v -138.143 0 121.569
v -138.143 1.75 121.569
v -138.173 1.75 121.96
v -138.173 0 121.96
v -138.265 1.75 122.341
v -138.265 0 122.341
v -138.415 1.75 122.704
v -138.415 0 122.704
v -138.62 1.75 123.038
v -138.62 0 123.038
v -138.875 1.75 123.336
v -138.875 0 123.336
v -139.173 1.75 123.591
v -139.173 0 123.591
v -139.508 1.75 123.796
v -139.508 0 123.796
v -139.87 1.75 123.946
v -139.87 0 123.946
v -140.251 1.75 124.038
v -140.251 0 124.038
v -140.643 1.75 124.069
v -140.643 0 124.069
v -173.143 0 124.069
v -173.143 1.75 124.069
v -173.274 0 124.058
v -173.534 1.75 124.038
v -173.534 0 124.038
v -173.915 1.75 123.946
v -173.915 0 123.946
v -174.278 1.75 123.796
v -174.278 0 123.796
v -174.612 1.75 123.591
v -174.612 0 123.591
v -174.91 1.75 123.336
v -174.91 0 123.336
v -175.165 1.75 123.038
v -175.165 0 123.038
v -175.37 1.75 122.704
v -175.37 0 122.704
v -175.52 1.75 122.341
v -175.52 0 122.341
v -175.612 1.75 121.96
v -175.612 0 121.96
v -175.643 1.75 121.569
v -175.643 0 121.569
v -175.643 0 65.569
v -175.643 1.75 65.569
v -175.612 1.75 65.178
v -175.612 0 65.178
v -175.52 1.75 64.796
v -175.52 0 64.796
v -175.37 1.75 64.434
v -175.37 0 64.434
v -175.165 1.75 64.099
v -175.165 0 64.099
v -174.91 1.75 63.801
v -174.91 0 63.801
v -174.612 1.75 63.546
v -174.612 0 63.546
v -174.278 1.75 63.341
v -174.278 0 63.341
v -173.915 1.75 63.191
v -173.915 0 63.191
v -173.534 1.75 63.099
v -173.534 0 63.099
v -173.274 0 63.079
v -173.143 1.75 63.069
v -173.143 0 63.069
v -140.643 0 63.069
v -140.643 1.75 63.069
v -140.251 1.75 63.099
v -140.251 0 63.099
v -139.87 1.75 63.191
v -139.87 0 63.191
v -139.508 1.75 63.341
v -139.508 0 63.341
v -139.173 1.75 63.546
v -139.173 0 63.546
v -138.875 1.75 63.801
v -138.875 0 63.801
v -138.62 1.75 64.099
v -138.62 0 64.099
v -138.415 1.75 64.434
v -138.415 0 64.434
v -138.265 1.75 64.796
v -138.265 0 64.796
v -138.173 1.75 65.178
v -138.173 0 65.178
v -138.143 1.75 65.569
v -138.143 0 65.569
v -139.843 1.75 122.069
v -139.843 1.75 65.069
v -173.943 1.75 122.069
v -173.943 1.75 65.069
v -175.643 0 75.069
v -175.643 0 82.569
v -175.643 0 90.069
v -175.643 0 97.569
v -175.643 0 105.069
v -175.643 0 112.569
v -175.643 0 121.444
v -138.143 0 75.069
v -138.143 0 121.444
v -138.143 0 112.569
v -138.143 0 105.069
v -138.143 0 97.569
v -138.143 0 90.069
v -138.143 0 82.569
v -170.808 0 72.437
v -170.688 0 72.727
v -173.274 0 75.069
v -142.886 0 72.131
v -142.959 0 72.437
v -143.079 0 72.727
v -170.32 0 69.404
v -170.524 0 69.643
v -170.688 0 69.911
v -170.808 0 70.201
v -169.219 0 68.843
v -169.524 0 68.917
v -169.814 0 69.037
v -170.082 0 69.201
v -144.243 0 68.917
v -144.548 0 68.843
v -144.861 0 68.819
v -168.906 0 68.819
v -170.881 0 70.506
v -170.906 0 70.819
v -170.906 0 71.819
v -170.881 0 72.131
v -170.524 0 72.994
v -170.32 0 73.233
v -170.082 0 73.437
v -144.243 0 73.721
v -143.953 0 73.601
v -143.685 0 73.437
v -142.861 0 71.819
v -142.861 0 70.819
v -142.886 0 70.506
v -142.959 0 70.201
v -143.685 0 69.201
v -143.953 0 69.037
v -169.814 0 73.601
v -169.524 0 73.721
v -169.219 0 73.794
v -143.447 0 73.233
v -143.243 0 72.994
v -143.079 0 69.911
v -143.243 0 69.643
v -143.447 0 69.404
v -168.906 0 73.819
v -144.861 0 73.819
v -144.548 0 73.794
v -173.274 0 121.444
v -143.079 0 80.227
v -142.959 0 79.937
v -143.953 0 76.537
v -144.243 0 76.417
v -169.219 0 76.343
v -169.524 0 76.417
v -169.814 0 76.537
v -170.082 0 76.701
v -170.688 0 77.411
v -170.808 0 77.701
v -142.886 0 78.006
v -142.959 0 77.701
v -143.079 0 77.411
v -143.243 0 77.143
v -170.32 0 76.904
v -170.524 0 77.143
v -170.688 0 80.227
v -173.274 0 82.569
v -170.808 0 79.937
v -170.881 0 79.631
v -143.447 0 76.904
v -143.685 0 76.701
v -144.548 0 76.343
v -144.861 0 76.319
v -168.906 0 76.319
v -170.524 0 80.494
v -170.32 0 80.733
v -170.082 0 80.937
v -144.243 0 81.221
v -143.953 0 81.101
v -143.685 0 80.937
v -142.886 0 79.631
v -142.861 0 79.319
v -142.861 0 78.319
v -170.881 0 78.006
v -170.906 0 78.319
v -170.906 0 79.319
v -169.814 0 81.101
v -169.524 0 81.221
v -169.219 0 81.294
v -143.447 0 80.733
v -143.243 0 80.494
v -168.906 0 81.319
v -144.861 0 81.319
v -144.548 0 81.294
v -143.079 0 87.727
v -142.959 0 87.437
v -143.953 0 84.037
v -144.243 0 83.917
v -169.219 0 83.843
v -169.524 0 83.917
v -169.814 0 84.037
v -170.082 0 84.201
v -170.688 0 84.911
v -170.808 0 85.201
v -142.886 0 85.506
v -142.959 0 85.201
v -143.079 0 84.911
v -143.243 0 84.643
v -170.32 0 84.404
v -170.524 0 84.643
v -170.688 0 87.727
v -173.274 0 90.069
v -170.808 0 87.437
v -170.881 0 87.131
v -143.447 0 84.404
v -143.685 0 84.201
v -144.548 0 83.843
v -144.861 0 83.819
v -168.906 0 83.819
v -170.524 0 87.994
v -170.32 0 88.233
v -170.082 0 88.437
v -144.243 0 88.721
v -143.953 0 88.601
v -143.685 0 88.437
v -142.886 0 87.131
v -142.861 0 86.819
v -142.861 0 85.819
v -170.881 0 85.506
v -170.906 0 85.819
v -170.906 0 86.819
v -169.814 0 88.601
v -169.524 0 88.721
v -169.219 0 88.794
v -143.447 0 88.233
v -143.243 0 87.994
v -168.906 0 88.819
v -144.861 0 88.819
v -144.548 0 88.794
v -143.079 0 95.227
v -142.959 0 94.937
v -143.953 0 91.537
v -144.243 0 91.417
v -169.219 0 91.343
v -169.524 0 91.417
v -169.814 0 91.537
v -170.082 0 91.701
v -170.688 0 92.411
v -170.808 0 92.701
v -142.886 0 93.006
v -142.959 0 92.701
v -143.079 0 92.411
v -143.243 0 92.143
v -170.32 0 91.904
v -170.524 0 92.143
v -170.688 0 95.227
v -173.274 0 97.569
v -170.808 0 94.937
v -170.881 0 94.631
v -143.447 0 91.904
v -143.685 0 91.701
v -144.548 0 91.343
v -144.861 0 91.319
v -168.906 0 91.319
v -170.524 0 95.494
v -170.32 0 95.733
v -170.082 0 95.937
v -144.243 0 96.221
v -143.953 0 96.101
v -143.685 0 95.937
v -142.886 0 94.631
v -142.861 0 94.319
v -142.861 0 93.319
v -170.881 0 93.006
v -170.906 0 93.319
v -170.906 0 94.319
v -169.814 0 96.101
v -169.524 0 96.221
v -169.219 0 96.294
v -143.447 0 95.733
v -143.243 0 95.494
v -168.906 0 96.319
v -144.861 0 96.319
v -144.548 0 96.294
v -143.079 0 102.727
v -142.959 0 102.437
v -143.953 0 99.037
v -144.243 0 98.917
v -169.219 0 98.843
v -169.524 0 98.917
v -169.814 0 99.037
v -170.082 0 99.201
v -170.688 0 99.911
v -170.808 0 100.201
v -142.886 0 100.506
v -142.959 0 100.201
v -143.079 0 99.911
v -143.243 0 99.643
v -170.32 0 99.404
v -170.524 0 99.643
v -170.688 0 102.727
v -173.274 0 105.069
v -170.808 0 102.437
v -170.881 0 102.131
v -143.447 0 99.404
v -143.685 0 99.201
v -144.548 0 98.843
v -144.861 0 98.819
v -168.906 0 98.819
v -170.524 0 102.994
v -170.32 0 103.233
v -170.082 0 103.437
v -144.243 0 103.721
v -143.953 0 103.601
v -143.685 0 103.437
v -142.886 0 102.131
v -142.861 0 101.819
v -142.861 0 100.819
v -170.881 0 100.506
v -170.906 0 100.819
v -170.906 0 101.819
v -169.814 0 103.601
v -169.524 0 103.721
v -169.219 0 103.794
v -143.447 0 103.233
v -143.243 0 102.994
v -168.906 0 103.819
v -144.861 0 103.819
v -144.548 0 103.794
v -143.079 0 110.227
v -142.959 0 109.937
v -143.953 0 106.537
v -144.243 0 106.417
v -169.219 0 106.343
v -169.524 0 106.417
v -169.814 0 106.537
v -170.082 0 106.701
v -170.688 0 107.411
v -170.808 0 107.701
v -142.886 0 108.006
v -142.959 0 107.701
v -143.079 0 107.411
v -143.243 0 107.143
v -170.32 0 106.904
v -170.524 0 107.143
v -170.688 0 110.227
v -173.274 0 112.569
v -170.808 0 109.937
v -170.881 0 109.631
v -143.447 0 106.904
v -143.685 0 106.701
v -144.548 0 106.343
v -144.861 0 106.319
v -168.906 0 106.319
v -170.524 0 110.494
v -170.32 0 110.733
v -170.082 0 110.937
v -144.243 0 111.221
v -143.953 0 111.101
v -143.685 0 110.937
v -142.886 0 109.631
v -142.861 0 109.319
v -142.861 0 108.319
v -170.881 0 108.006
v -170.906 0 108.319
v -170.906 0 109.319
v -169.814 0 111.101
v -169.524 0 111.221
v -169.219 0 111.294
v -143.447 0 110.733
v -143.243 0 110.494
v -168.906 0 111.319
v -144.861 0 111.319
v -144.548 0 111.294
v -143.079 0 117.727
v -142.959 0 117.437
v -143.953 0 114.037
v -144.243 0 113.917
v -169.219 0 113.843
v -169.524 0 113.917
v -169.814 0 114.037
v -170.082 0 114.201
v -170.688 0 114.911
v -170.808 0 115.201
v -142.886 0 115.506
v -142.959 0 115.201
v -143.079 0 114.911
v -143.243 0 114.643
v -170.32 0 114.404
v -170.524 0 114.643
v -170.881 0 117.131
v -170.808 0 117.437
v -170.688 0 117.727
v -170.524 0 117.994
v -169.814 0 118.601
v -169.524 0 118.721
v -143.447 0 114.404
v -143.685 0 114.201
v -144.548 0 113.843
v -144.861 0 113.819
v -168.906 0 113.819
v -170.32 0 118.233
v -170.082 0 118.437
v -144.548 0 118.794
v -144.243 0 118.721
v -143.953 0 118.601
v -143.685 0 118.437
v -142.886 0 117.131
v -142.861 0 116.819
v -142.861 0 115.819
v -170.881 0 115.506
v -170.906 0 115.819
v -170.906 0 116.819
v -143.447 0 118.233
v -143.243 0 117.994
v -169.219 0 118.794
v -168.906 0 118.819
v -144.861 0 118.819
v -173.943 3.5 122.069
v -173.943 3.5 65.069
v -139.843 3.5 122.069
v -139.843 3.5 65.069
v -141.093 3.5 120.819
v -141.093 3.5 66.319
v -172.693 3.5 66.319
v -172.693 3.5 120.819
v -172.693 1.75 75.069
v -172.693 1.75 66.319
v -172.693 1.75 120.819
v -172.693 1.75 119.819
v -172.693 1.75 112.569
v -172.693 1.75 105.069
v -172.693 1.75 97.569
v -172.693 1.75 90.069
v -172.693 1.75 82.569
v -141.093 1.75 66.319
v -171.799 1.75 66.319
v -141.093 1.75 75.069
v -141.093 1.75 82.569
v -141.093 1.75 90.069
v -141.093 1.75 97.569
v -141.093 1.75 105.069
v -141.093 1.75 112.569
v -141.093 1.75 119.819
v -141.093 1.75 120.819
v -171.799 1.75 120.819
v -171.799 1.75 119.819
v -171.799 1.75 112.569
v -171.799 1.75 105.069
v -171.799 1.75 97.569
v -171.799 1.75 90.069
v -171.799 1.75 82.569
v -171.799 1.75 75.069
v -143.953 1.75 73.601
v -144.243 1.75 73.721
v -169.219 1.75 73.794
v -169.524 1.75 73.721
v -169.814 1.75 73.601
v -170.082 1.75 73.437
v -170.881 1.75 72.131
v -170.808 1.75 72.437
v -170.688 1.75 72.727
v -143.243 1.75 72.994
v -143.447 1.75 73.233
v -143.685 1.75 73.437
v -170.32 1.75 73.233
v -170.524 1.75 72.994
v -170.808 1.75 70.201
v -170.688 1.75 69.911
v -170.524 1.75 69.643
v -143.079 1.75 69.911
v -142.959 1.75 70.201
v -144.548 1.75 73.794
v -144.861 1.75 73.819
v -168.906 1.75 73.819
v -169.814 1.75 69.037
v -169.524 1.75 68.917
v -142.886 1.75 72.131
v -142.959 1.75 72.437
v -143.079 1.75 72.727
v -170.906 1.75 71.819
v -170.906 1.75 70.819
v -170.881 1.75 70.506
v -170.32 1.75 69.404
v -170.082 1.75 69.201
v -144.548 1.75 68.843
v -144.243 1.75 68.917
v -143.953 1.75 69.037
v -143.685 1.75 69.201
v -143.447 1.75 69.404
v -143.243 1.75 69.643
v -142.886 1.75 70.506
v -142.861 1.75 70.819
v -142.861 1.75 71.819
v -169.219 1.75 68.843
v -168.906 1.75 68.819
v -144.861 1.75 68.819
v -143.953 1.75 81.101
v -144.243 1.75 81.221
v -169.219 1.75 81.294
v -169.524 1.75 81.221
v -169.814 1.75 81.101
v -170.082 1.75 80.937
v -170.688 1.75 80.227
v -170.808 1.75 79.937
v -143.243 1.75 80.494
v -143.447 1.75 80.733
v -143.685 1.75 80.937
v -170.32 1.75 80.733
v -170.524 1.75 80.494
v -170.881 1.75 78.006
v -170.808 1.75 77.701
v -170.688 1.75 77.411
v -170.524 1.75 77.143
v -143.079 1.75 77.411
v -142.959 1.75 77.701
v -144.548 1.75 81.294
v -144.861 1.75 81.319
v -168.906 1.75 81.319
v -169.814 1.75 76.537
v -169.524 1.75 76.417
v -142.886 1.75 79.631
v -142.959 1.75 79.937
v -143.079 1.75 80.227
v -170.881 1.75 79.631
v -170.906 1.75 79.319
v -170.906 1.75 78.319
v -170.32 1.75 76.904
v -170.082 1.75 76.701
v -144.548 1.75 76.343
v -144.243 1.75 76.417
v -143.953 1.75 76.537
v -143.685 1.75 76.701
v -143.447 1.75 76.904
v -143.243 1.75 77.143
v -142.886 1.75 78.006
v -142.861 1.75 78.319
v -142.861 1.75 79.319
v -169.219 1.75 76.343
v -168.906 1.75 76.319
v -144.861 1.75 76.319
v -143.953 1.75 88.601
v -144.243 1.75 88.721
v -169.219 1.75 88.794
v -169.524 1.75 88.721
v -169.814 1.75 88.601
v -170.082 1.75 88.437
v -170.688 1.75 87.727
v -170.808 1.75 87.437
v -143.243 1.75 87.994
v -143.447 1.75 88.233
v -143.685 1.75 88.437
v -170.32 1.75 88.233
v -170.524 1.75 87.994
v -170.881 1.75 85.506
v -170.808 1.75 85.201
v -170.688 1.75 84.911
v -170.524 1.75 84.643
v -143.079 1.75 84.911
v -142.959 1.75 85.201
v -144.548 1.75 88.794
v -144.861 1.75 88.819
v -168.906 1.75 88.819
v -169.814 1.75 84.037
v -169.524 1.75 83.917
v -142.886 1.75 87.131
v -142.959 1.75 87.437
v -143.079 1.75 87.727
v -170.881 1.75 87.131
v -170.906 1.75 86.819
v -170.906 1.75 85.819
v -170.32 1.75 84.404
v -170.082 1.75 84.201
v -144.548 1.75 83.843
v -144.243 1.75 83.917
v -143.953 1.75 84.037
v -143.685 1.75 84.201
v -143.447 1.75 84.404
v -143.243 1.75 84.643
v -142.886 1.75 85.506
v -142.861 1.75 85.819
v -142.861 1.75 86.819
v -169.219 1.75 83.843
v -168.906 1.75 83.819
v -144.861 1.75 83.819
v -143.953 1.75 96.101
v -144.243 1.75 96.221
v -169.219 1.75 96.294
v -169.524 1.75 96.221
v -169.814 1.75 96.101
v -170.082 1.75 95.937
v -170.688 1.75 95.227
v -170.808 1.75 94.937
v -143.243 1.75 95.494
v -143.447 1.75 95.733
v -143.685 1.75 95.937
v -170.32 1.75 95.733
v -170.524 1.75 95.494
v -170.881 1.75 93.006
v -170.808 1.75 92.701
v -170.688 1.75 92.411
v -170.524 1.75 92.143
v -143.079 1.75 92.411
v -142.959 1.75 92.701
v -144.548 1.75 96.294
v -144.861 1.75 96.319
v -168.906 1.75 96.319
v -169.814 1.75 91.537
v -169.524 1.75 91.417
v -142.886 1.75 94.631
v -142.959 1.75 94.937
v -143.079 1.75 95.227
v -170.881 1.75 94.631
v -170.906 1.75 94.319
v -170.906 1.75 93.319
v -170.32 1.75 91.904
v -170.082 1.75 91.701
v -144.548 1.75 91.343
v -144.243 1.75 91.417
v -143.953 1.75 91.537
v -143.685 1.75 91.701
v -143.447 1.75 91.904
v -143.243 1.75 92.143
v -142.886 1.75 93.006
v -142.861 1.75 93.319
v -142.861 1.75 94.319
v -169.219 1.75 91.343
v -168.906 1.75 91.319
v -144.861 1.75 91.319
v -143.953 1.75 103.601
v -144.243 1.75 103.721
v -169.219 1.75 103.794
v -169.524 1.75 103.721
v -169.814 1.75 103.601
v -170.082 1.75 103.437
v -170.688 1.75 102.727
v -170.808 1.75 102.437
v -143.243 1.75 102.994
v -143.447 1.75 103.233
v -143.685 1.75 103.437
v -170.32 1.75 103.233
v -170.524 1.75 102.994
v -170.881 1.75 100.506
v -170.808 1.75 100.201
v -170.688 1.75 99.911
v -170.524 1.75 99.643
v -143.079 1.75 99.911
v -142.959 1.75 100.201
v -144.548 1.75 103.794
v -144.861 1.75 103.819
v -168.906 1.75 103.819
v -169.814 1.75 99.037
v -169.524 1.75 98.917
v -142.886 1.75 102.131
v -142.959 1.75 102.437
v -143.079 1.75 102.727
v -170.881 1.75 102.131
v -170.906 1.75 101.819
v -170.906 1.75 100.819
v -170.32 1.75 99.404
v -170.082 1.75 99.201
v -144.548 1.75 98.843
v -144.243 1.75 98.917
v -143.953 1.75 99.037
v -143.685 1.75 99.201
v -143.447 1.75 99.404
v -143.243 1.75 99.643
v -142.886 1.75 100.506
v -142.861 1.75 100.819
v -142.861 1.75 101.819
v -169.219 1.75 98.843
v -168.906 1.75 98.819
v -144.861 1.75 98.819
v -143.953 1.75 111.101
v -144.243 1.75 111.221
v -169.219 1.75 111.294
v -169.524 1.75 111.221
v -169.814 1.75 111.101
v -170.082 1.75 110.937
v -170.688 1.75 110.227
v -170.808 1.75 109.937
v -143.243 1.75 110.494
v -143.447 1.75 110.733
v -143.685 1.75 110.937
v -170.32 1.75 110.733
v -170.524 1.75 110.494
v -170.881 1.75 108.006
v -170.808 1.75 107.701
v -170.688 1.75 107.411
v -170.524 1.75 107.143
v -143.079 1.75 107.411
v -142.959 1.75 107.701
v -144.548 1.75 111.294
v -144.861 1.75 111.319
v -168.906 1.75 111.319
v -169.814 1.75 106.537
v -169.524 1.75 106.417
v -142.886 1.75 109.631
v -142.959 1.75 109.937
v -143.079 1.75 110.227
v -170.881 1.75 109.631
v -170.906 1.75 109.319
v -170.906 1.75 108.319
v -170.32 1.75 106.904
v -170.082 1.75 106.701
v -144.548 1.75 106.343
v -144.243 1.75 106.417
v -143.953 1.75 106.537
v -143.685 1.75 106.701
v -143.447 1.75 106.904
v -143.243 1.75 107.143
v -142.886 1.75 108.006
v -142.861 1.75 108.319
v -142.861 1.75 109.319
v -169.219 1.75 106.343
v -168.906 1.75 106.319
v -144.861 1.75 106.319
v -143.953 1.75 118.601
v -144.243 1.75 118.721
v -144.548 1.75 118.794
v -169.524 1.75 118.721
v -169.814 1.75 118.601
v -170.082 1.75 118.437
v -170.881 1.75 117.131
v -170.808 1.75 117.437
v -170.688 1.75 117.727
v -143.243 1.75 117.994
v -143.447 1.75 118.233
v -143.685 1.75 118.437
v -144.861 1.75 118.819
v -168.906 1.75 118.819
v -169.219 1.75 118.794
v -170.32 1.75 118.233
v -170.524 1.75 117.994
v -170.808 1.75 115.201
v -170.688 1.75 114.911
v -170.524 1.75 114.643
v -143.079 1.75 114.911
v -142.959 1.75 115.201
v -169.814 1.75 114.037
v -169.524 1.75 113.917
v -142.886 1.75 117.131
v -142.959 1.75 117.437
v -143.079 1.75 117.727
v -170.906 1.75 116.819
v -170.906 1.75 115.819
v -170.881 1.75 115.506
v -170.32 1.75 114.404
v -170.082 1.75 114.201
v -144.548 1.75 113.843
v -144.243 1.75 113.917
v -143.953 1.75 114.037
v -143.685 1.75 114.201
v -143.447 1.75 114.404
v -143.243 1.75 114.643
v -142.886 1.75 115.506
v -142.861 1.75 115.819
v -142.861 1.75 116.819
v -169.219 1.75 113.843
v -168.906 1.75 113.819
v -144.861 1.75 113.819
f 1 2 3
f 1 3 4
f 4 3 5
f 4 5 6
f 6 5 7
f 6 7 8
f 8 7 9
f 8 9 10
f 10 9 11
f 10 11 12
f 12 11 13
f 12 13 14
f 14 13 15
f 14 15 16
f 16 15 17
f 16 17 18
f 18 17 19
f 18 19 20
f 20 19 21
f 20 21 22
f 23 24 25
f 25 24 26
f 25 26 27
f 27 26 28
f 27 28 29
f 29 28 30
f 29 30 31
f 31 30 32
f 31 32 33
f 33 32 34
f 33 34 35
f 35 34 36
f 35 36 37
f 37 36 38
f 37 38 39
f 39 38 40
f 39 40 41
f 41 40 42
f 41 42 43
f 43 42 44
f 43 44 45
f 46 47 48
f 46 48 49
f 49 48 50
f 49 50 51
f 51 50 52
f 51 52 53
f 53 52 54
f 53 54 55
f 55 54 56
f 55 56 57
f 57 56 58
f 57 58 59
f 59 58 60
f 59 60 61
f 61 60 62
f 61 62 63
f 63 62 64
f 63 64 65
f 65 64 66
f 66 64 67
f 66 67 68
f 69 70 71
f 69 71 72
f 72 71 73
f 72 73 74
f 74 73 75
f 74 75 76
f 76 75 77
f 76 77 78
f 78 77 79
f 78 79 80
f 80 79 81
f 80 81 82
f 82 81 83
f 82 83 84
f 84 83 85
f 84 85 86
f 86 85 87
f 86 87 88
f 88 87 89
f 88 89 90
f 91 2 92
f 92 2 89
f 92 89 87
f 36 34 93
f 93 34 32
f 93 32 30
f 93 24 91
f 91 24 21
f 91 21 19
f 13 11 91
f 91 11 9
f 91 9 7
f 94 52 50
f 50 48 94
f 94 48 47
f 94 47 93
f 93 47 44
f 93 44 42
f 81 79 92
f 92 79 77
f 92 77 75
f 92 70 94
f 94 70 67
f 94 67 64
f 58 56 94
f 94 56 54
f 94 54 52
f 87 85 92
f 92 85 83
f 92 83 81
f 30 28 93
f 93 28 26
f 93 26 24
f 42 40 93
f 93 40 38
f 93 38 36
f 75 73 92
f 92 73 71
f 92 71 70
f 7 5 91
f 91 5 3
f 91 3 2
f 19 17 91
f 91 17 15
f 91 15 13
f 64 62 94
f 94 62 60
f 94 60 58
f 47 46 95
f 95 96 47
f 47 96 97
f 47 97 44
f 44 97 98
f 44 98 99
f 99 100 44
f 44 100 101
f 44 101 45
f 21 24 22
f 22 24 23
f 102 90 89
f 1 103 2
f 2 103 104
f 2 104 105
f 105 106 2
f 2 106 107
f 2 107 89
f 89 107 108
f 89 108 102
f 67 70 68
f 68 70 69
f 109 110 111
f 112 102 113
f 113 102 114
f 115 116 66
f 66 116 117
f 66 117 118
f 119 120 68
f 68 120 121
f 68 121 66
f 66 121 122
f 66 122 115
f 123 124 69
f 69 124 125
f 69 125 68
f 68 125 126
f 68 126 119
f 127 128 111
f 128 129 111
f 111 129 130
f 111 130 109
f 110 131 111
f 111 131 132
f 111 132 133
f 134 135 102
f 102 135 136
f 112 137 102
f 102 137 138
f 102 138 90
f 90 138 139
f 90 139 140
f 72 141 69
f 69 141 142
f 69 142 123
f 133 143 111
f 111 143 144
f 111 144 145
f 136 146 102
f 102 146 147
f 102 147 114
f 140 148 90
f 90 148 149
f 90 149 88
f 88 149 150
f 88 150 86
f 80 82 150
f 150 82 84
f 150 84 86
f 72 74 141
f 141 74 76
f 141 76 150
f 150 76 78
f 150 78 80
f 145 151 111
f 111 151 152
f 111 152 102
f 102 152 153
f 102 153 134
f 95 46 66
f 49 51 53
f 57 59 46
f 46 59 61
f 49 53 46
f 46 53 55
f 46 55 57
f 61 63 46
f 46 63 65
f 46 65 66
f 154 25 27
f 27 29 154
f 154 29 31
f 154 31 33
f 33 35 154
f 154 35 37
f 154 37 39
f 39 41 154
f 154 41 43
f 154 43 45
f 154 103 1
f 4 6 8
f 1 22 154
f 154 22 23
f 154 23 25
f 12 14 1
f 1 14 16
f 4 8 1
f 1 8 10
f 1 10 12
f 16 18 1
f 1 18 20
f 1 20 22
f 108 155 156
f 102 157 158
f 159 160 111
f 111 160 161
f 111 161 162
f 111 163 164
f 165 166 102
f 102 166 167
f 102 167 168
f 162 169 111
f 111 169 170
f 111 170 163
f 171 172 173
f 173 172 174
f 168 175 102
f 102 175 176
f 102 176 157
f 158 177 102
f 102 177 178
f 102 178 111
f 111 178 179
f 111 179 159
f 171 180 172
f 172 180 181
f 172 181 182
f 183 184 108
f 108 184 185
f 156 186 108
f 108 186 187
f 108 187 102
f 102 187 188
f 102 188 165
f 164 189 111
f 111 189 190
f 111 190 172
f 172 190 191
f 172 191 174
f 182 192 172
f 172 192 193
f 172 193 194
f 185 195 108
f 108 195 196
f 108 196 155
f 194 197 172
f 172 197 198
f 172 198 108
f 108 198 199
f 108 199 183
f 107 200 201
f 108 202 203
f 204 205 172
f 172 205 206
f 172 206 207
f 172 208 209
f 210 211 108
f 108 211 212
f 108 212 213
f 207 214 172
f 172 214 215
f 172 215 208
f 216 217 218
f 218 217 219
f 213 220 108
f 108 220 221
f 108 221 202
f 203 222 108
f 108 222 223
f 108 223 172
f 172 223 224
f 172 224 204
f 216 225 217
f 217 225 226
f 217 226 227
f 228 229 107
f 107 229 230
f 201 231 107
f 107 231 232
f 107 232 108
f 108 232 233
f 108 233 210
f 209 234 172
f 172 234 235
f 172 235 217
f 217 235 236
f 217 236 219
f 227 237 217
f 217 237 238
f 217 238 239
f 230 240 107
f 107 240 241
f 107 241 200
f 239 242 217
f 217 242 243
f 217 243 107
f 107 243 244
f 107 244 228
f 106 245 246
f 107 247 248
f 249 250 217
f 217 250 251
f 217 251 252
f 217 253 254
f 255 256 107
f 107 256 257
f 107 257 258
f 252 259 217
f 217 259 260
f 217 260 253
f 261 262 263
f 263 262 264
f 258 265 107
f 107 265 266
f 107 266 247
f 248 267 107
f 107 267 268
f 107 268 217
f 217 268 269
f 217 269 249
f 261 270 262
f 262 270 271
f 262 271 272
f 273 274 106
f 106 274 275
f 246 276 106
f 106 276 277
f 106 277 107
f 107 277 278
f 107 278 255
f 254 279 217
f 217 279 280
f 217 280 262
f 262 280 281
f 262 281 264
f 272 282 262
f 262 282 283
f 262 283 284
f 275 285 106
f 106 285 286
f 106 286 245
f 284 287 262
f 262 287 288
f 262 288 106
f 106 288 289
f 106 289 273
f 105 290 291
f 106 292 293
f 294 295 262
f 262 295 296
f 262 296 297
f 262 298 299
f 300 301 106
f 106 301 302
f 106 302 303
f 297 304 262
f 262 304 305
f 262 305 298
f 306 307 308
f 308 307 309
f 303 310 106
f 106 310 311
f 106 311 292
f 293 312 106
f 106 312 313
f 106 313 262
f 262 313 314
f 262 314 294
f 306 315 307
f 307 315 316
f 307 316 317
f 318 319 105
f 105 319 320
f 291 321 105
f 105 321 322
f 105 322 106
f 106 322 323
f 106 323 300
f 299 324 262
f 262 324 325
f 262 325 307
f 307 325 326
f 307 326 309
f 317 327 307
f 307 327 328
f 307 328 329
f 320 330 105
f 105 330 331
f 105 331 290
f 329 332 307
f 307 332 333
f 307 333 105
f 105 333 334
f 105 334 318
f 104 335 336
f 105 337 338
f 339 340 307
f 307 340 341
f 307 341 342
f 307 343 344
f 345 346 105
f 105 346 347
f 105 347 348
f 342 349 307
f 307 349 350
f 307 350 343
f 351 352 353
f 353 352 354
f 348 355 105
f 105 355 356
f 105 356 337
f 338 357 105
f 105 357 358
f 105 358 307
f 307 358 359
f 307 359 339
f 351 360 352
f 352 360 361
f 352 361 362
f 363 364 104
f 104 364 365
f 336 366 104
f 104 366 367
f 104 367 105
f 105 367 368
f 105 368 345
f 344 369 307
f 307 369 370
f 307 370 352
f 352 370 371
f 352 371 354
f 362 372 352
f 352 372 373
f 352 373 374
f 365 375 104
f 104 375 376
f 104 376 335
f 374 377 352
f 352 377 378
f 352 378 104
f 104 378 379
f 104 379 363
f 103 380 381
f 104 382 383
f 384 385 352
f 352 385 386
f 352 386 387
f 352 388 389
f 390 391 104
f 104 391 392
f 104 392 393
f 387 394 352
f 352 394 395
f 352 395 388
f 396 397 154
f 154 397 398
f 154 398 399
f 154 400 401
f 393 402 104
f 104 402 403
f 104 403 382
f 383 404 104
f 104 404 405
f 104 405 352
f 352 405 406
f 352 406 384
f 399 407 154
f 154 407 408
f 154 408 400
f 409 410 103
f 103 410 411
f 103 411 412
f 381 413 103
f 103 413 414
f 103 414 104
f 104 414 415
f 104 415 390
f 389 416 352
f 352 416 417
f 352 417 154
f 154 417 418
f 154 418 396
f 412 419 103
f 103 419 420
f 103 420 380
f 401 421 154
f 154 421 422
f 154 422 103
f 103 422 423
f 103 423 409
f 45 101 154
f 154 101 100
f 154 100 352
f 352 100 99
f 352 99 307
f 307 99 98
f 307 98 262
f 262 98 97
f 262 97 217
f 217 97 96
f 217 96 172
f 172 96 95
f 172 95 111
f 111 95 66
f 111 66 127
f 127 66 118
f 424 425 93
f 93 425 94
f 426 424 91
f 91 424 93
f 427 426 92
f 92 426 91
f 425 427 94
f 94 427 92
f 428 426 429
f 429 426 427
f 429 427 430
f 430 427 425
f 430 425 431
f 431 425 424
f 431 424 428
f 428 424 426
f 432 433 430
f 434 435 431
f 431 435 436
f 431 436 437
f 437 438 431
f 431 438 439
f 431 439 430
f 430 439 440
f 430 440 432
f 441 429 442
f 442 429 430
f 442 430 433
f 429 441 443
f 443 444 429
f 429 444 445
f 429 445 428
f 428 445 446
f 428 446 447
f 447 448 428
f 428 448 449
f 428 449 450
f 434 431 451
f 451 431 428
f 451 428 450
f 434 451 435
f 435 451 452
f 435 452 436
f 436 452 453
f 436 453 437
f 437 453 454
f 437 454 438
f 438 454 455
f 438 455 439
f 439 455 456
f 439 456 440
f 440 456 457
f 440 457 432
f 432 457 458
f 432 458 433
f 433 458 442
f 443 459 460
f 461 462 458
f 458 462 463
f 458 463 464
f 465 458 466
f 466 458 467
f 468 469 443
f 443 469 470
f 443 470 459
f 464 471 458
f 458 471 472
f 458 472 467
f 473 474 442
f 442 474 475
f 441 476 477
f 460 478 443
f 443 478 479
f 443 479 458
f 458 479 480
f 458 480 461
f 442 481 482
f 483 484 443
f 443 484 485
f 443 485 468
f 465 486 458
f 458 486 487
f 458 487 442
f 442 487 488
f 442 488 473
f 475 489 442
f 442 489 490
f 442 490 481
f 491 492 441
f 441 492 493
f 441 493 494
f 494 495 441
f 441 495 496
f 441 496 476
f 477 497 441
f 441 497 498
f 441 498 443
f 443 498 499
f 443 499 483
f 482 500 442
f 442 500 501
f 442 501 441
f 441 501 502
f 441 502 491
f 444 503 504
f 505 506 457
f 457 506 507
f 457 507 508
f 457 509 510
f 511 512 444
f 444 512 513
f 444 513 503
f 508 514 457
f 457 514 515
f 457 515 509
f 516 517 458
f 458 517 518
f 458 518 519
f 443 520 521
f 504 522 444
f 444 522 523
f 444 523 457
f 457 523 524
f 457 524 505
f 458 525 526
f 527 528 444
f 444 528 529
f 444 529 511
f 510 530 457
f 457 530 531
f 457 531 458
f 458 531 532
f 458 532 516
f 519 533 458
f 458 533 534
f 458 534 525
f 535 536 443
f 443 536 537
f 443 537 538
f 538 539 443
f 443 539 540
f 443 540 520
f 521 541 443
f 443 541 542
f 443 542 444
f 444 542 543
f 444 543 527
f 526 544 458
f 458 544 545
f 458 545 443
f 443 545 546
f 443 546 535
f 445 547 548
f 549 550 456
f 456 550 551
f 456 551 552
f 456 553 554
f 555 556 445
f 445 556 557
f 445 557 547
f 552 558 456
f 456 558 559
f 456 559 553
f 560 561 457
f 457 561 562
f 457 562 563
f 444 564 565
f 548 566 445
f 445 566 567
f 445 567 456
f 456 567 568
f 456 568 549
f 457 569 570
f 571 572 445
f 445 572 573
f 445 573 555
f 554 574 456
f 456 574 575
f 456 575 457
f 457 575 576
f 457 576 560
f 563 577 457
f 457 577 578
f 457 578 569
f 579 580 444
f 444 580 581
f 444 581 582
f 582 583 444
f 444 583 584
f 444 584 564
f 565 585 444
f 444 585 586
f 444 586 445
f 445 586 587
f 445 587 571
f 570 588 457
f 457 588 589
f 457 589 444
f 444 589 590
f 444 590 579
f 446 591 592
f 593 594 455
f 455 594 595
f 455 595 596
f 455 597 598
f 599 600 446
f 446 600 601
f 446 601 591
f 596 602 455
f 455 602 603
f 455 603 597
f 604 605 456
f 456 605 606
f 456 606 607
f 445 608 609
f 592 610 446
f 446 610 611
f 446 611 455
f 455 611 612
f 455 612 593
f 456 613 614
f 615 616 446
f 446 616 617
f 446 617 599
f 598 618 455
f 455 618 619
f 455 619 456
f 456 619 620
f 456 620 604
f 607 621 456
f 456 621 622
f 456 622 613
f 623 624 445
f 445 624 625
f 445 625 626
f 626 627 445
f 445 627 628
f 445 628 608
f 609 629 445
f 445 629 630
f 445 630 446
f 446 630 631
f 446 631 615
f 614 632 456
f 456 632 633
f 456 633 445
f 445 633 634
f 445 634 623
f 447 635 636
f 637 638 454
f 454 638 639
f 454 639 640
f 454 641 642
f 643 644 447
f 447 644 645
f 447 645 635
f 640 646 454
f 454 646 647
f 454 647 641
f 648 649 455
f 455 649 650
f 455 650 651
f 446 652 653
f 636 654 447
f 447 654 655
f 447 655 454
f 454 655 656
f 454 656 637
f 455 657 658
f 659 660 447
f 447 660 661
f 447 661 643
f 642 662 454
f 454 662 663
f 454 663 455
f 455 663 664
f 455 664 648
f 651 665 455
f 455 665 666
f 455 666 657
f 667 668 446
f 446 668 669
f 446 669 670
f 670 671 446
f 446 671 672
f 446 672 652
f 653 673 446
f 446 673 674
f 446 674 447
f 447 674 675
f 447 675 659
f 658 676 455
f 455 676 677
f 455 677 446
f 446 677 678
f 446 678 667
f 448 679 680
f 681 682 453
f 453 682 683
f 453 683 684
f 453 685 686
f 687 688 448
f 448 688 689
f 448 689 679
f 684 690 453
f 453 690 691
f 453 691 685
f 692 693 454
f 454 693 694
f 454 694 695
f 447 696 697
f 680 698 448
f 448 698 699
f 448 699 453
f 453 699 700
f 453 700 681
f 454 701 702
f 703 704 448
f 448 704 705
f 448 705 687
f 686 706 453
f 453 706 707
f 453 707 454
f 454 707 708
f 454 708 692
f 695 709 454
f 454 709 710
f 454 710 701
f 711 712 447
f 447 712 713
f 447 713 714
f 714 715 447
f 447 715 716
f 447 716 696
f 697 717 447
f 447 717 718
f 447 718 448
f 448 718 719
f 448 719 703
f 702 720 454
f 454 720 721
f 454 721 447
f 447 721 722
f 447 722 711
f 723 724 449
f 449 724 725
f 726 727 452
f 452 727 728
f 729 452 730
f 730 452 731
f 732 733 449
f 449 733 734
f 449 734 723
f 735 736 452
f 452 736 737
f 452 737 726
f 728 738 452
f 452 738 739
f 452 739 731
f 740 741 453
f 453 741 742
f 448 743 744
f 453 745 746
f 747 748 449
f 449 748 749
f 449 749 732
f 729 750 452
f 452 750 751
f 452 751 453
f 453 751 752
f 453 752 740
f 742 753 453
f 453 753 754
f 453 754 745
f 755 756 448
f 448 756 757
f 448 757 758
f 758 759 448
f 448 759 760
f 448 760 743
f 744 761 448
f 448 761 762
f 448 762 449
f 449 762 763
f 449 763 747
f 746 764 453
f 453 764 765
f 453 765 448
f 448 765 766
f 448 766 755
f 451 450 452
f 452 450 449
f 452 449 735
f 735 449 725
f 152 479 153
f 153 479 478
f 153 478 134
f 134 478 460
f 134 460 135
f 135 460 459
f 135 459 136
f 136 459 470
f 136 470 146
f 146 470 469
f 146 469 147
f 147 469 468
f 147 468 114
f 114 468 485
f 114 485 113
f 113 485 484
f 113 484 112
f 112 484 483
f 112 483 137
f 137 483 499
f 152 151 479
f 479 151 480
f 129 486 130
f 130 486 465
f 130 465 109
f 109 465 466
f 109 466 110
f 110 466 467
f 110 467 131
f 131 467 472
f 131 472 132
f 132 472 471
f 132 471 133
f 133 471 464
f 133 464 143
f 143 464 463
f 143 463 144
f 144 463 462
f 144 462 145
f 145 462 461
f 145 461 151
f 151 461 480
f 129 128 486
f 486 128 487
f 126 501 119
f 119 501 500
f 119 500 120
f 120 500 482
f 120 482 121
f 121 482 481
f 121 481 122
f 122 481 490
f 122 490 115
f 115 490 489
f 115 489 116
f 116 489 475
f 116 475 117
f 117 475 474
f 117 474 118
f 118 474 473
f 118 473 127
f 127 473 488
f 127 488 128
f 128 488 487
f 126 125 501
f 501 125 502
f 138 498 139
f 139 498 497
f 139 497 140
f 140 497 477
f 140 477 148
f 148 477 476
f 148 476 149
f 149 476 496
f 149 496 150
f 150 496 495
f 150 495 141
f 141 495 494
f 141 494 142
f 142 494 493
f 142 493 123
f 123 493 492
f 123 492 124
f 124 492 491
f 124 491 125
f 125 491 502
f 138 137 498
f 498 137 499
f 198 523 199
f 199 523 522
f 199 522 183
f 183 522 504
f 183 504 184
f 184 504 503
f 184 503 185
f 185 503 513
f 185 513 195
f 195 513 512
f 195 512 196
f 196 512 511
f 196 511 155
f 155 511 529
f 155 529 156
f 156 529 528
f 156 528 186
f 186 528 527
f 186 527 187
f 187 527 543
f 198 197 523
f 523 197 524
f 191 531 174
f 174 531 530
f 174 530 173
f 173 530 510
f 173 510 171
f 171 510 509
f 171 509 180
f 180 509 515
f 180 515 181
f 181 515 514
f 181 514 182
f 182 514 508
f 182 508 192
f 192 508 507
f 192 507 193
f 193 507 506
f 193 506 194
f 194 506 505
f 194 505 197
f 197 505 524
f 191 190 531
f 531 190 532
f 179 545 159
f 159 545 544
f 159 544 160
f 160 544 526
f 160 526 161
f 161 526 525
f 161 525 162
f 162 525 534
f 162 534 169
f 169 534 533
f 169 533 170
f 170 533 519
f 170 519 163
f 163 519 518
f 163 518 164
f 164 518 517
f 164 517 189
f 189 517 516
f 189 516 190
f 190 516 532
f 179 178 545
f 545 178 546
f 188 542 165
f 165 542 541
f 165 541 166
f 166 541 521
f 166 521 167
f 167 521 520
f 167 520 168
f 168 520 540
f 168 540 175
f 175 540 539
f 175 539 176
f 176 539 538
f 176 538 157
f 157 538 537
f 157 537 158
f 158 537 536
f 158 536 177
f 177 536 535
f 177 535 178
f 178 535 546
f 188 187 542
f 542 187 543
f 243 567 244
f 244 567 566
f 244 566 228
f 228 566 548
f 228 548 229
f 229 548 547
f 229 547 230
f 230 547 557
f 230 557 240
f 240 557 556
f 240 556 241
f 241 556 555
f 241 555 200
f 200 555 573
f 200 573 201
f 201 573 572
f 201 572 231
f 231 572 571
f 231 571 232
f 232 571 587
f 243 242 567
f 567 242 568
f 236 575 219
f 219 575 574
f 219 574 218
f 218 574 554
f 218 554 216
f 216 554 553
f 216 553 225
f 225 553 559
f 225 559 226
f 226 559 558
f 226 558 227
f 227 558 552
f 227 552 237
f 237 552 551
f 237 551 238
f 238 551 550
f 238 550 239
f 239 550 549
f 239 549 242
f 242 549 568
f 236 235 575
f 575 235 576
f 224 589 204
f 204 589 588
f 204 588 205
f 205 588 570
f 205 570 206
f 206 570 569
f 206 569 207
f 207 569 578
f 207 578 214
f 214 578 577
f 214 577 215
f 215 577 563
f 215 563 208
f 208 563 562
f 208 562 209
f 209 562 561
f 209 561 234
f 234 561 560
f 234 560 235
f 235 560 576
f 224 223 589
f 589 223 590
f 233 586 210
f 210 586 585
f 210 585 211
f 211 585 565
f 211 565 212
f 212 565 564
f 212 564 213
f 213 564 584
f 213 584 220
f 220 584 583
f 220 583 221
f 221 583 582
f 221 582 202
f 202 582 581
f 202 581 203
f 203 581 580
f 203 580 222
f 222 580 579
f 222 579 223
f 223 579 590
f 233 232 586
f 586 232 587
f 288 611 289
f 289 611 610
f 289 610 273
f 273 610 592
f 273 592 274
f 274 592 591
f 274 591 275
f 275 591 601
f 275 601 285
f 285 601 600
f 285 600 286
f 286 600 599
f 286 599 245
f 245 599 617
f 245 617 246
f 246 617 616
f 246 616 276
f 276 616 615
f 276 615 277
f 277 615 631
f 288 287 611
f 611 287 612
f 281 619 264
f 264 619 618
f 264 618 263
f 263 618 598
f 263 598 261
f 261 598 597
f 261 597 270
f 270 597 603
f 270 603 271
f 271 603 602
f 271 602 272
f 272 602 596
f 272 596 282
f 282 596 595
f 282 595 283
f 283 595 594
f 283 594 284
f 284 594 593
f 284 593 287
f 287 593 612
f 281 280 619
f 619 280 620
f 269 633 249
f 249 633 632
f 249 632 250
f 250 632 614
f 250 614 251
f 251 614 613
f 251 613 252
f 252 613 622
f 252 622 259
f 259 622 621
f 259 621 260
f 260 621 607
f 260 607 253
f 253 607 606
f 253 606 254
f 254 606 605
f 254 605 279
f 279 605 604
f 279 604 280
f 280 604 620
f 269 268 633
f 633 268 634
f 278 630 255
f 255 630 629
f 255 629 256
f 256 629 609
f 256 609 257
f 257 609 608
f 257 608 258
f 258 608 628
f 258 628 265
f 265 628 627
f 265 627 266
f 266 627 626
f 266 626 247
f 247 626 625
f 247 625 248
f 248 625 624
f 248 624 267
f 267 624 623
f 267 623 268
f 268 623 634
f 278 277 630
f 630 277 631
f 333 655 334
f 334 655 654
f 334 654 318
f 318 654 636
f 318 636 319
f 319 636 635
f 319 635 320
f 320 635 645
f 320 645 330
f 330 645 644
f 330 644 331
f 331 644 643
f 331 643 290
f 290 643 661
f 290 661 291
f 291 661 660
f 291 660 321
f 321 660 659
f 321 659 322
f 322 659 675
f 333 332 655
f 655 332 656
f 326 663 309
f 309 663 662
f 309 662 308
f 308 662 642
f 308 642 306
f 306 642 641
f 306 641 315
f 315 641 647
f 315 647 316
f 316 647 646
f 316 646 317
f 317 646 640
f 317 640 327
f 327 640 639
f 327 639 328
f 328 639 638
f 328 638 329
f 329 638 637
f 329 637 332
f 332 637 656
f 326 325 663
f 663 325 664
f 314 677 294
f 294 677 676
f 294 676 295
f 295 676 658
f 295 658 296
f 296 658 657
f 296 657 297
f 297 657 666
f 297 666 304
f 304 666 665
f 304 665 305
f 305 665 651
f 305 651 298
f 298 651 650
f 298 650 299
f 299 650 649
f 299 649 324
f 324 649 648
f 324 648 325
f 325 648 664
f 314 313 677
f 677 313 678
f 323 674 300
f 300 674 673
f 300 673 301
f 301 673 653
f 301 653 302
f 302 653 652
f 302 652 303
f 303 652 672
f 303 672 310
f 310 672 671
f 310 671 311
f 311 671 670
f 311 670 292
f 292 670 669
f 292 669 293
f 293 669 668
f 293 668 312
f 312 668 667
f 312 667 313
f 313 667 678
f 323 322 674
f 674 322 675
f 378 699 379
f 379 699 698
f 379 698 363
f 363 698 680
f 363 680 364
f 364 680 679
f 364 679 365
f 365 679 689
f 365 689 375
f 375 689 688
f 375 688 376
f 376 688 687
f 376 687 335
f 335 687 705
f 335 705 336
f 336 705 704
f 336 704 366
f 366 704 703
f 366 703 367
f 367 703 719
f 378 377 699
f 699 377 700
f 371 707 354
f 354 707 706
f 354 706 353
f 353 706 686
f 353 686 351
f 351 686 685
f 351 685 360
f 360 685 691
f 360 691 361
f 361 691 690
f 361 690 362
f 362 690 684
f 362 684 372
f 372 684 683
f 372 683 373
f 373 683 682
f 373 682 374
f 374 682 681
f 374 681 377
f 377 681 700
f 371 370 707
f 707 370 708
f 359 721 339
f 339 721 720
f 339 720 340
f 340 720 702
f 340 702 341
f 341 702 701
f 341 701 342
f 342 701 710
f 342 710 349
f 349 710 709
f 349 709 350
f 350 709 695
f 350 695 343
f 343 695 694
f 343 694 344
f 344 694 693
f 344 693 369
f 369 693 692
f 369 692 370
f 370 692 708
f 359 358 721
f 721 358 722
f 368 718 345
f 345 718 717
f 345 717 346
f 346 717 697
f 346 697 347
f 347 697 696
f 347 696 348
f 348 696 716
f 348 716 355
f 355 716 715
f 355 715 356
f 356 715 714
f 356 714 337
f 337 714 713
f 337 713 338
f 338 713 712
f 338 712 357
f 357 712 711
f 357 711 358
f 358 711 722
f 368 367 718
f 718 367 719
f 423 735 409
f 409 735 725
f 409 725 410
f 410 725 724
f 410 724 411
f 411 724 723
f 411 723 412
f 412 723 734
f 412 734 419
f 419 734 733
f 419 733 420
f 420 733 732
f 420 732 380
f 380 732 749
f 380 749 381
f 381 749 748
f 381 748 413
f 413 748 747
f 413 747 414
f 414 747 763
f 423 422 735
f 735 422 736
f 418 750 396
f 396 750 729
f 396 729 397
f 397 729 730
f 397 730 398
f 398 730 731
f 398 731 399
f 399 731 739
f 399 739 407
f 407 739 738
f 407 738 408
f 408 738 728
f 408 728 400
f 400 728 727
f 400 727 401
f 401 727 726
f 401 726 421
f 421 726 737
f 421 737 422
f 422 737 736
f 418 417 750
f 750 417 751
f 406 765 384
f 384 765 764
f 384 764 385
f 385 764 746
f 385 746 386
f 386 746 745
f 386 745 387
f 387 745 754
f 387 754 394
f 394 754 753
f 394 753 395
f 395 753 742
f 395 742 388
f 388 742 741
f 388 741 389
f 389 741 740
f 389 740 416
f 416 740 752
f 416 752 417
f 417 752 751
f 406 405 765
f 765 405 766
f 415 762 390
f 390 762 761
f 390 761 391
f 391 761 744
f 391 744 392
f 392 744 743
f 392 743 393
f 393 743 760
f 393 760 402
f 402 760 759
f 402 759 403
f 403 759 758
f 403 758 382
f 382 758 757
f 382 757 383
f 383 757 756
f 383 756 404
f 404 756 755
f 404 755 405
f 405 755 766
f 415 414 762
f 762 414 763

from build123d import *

# Parameters (mm, degrees)
SKETCH1_W           = 37.5
SKETCH1_H           = 61
BOSS_EXTRUDE1_DEPTH = 1.75
SKETCH2_W           = 34.1
SKETCH2_H           = 57
BOSS_EXTRUDE2_DEPTH = 1.75
SKETCH3_W           = 31.6
SKETCH3_H           = 54.5
CUT_EXTRUDE1_DEPTH  = 1.75
CUT_EXTRUDE3_DEPTH  = 1.75
FILLET1_R           = 2.5
FILLET2_R           = 2.5
FILLET3_R           = 2.5
FILLET4_R           = 2.5


with BuildPart() as part:
    # Sketch1 → Boss-Extrude1 (new body)
    with BuildSketch(Plane(origin=(0, 0, 0), x_dir=(1, 0, 0), z_dir=(0, 1, 0))):
        with Locations((-156.892564619, -93.568616843)):
            Rectangle(SKETCH1_W, SKETCH1_H)
    extrude(amount=BOSS_EXTRUDE1_DEPTH)

    # Sketch2 → Boss-Extrude2 (add)
    with BuildSketch(Plane(origin=(0, 1.75, 0), x_dir=(1, 0, 0), z_dir=(0, 1, 0))):
        with Locations((-156.892564619, -93.568616843)):
            Rectangle(SKETCH2_W, SKETCH2_H)
    extrude(amount=BOSS_EXTRUDE2_DEPTH)

    # Sketch3 → Cut-Extrude1 (cut)
    with BuildSketch(Plane(origin=(0, 3.5, 0), x_dir=(1, 0, 0), z_dir=(0, 1, 0))):
        with Locations((-156.892564619, -93.568616843)):
            Rectangle(SKETCH3_W, SKETCH3_H)
    extrude(amount=-CUT_EXTRUDE1_DEPTH, mode=Mode.SUBTRACT)

    # Sketch4 → Cut-Extrude3 (cut)
    with BuildSketch(Plane(origin=(0, 1.75, 0), x_dir=(1, 0, 0), z_dir=(0, 1, 0))):
        with BuildLine():
            Line((-168.906040513, -118.818616843), (-144.860961832, -118.818616843))
            ThreePointArc((-144.860961832, -118.818616843), (-143.446748269, -118.232830406), (-142.860961832, -116.818616843))
            Line((-142.860961832, -116.818616843), (-142.860961832, -115.818616843))
            ThreePointArc((-142.860961832, -115.818616843), (-143.446748269, -114.404403281), (-144.860961832, -113.818616843))
            Line((-144.860961832, -113.818616843), (-168.906040513, -113.818616843))
            ThreePointArc((-168.906040513, -113.818616843), (-170.320254075, -114.404403281), (-170.906040513, -115.818616843))
            Line((-170.906040513, -115.818616843), (-170.906040513, -116.818616843))
            ThreePointArc((-170.906040513, -116.818616843), (-170.320254075, -118.232830406), (-168.906040513, -118.818616843))
        make_face()
        with BuildLine():
            Line((-168.906040513, -103.818616843), (-144.860961832, -103.818616843))
            ThreePointArc((-144.860961832, -103.818616843), (-143.446748269, -103.232830406), (-142.860961832, -101.818616843))
            Line((-142.860961832, -101.818616843), (-142.860961832, -100.818616843))
            ThreePointArc((-142.860961832, -100.818616843), (-143.446748269, -99.404403281), (-144.860961832, -98.818616843))
            Line((-144.860961832, -98.818616843), (-168.906040513, -98.818616843))
            ThreePointArc((-168.906040513, -98.818616843), (-170.320254075, -99.404403281), (-170.906040513, -100.818616843))
            Line((-170.906040513, -100.818616843), (-170.906040513, -101.818616843))
            ThreePointArc((-170.906040513, -101.818616843), (-170.320254075, -103.232830406), (-168.906040513, -103.818616843))
        make_face()
        with BuildLine():
            Line((-168.906040513, -96.318616843), (-144.860961832, -96.318616843))
            ThreePointArc((-144.860961832, -96.318616843), (-143.446748269, -95.732830406), (-142.860961832, -94.318616843))
            Line((-142.860961832, -94.318616843), (-142.860961832, -93.318616843))
            ThreePointArc((-142.860961832, -93.318616843), (-143.446748269, -91.904403281), (-144.860961832, -91.318616843))
            Line((-144.860961832, -91.318616843), (-168.906040513, -91.318616843))
            ThreePointArc((-168.906040513, -91.318616843), (-170.320254075, -91.904403281), (-170.906040513, -93.318616843))
            Line((-170.906040513, -93.318616843), (-170.906040513, -94.318616843))
            ThreePointArc((-170.906040513, -94.318616843), (-170.320254075, -95.732830406), (-168.906040513, -96.318616843))
        make_face()
        with BuildLine():
            Line((-168.906040513, -81.318616843), (-144.860961832, -81.318616843))
            ThreePointArc((-144.860961832, -81.318616843), (-143.446748269, -80.732830406), (-142.860961832, -79.318616843))
            Line((-142.860961832, -79.318616843), (-142.860961832, -78.318616843))
            ThreePointArc((-142.860961832, -78.318616843), (-143.446748269, -76.904403281), (-144.860961832, -76.318616843))
            Line((-144.860961832, -76.318616843), (-168.906040513, -76.318616843))
            ThreePointArc((-168.906040513, -76.318616843), (-170.320254075, -76.904403281), (-170.906040513, -78.318616843))
            Line((-170.906040513, -78.318616843), (-170.906040513, -79.318616843))
            ThreePointArc((-170.906040513, -79.318616843), (-170.320254075, -80.732830406), (-168.906040513, -81.318616843))
        make_face()
        with BuildLine():
            Line((-168.906040513, -111.318616843), (-144.860961832, -111.318616843))
            ThreePointArc((-144.860961832, -111.318616843), (-143.446748269, -110.732830406), (-142.860961832, -109.318616843))
            Line((-142.860961832, -109.318616843), (-142.860961832, -108.318616843))
            ThreePointArc((-142.860961832, -108.318616843), (-143.446748269, -106.904403281), (-144.860961832, -106.318616843))
            Line((-144.860961832, -106.318616843), (-168.906040513, -106.318616843))
            ThreePointArc((-168.906040513, -106.318616843), (-170.320254075, -106.904403281), (-170.906040513, -108.318616843))
            Line((-170.906040513, -108.318616843), (-170.906040513, -109.318616843))
            ThreePointArc((-170.906040513, -109.318616843), (-170.320254075, -110.732830406), (-168.906040513, -111.318616843))
        make_face()
        with BuildLine():
            Line((-168.906040513, -88.818616843), (-144.860961832, -88.818616843))
            ThreePointArc((-144.860961832, -88.818616843), (-143.446748269, -88.232830406), (-142.860961832, -86.818616843))
            Line((-142.860961832, -86.818616843), (-142.860961832, -85.818616843))
            ThreePointArc((-142.860961832, -85.818616843), (-143.446748269, -84.404403281), (-144.860961832, -83.818616843))
            Line((-144.860961832, -83.818616843), (-168.906040513, -83.818616843))
            ThreePointArc((-168.906040513, -83.818616843), (-170.320254075, -84.404403281), (-170.906040513, -85.818616843))
            Line((-170.906040513, -85.818616843), (-170.906040513, -86.818616843))
            ThreePointArc((-170.906040513, -86.818616843), (-170.320254075, -88.232830406), (-168.906040513, -88.818616843))
        make_face()
        with BuildLine():
            Line((-168.906040513, -73.818616843), (-144.860961832, -73.818616843))
            ThreePointArc((-144.860961832, -73.818616843), (-143.446748269, -73.232830406), (-142.860961832, -71.818616843))
            Line((-142.860961832, -71.818616843), (-142.860961832, -70.818616843))
            ThreePointArc((-142.860961832, -70.818616843), (-143.446748269, -69.404403281), (-144.860961832, -68.818616843))
            Line((-144.860961832, -68.818616843), (-168.906040513, -68.818616843))
            ThreePointArc((-168.906040513, -68.818616843), (-170.320254075, -69.404403281), (-170.906040513, -70.818616843))
            Line((-170.906040513, -70.818616843), (-170.906040513, -71.818616843))
            ThreePointArc((-170.906040513, -71.818616843), (-170.320254075, -73.232830406), (-168.906040513, -73.818616843))
        make_face()
    extrude(amount=-CUT_EXTRUDE3_DEPTH, mode=Mode.SUBTRACT)

    # Fillet1
    fillet1_edges = [part.edges().sort_by_distance(p)[0] for p in [
        (-138.142564619, 0.875, 63.068616843),
    ]]
    fillet(fillet1_edges, radius=FILLET1_R)

    # Fillet2
    fillet2_edges = [part.edges().sort_by_distance(p)[0] for p in [
        (-175.642564619, 0.875, 63.068616843),
    ]]
    fillet(fillet2_edges, radius=FILLET2_R)

    # Fillet3
    fillet3_edges = [part.edges().sort_by_distance(p)[0] for p in [
        (-175.642564619, 0.875, 124.068616843),
    ]]
    fillet(fillet3_edges, radius=FILLET3_R)

    # Fillet4
    fillet4_edges = [part.edges().sort_by_distance(p)[0] for p in [
        (-138.142564619, 0.875, 124.068616843),
    ]]
    fillet(fillet4_edges, radius=FILLET4_R)


solid = part.part
